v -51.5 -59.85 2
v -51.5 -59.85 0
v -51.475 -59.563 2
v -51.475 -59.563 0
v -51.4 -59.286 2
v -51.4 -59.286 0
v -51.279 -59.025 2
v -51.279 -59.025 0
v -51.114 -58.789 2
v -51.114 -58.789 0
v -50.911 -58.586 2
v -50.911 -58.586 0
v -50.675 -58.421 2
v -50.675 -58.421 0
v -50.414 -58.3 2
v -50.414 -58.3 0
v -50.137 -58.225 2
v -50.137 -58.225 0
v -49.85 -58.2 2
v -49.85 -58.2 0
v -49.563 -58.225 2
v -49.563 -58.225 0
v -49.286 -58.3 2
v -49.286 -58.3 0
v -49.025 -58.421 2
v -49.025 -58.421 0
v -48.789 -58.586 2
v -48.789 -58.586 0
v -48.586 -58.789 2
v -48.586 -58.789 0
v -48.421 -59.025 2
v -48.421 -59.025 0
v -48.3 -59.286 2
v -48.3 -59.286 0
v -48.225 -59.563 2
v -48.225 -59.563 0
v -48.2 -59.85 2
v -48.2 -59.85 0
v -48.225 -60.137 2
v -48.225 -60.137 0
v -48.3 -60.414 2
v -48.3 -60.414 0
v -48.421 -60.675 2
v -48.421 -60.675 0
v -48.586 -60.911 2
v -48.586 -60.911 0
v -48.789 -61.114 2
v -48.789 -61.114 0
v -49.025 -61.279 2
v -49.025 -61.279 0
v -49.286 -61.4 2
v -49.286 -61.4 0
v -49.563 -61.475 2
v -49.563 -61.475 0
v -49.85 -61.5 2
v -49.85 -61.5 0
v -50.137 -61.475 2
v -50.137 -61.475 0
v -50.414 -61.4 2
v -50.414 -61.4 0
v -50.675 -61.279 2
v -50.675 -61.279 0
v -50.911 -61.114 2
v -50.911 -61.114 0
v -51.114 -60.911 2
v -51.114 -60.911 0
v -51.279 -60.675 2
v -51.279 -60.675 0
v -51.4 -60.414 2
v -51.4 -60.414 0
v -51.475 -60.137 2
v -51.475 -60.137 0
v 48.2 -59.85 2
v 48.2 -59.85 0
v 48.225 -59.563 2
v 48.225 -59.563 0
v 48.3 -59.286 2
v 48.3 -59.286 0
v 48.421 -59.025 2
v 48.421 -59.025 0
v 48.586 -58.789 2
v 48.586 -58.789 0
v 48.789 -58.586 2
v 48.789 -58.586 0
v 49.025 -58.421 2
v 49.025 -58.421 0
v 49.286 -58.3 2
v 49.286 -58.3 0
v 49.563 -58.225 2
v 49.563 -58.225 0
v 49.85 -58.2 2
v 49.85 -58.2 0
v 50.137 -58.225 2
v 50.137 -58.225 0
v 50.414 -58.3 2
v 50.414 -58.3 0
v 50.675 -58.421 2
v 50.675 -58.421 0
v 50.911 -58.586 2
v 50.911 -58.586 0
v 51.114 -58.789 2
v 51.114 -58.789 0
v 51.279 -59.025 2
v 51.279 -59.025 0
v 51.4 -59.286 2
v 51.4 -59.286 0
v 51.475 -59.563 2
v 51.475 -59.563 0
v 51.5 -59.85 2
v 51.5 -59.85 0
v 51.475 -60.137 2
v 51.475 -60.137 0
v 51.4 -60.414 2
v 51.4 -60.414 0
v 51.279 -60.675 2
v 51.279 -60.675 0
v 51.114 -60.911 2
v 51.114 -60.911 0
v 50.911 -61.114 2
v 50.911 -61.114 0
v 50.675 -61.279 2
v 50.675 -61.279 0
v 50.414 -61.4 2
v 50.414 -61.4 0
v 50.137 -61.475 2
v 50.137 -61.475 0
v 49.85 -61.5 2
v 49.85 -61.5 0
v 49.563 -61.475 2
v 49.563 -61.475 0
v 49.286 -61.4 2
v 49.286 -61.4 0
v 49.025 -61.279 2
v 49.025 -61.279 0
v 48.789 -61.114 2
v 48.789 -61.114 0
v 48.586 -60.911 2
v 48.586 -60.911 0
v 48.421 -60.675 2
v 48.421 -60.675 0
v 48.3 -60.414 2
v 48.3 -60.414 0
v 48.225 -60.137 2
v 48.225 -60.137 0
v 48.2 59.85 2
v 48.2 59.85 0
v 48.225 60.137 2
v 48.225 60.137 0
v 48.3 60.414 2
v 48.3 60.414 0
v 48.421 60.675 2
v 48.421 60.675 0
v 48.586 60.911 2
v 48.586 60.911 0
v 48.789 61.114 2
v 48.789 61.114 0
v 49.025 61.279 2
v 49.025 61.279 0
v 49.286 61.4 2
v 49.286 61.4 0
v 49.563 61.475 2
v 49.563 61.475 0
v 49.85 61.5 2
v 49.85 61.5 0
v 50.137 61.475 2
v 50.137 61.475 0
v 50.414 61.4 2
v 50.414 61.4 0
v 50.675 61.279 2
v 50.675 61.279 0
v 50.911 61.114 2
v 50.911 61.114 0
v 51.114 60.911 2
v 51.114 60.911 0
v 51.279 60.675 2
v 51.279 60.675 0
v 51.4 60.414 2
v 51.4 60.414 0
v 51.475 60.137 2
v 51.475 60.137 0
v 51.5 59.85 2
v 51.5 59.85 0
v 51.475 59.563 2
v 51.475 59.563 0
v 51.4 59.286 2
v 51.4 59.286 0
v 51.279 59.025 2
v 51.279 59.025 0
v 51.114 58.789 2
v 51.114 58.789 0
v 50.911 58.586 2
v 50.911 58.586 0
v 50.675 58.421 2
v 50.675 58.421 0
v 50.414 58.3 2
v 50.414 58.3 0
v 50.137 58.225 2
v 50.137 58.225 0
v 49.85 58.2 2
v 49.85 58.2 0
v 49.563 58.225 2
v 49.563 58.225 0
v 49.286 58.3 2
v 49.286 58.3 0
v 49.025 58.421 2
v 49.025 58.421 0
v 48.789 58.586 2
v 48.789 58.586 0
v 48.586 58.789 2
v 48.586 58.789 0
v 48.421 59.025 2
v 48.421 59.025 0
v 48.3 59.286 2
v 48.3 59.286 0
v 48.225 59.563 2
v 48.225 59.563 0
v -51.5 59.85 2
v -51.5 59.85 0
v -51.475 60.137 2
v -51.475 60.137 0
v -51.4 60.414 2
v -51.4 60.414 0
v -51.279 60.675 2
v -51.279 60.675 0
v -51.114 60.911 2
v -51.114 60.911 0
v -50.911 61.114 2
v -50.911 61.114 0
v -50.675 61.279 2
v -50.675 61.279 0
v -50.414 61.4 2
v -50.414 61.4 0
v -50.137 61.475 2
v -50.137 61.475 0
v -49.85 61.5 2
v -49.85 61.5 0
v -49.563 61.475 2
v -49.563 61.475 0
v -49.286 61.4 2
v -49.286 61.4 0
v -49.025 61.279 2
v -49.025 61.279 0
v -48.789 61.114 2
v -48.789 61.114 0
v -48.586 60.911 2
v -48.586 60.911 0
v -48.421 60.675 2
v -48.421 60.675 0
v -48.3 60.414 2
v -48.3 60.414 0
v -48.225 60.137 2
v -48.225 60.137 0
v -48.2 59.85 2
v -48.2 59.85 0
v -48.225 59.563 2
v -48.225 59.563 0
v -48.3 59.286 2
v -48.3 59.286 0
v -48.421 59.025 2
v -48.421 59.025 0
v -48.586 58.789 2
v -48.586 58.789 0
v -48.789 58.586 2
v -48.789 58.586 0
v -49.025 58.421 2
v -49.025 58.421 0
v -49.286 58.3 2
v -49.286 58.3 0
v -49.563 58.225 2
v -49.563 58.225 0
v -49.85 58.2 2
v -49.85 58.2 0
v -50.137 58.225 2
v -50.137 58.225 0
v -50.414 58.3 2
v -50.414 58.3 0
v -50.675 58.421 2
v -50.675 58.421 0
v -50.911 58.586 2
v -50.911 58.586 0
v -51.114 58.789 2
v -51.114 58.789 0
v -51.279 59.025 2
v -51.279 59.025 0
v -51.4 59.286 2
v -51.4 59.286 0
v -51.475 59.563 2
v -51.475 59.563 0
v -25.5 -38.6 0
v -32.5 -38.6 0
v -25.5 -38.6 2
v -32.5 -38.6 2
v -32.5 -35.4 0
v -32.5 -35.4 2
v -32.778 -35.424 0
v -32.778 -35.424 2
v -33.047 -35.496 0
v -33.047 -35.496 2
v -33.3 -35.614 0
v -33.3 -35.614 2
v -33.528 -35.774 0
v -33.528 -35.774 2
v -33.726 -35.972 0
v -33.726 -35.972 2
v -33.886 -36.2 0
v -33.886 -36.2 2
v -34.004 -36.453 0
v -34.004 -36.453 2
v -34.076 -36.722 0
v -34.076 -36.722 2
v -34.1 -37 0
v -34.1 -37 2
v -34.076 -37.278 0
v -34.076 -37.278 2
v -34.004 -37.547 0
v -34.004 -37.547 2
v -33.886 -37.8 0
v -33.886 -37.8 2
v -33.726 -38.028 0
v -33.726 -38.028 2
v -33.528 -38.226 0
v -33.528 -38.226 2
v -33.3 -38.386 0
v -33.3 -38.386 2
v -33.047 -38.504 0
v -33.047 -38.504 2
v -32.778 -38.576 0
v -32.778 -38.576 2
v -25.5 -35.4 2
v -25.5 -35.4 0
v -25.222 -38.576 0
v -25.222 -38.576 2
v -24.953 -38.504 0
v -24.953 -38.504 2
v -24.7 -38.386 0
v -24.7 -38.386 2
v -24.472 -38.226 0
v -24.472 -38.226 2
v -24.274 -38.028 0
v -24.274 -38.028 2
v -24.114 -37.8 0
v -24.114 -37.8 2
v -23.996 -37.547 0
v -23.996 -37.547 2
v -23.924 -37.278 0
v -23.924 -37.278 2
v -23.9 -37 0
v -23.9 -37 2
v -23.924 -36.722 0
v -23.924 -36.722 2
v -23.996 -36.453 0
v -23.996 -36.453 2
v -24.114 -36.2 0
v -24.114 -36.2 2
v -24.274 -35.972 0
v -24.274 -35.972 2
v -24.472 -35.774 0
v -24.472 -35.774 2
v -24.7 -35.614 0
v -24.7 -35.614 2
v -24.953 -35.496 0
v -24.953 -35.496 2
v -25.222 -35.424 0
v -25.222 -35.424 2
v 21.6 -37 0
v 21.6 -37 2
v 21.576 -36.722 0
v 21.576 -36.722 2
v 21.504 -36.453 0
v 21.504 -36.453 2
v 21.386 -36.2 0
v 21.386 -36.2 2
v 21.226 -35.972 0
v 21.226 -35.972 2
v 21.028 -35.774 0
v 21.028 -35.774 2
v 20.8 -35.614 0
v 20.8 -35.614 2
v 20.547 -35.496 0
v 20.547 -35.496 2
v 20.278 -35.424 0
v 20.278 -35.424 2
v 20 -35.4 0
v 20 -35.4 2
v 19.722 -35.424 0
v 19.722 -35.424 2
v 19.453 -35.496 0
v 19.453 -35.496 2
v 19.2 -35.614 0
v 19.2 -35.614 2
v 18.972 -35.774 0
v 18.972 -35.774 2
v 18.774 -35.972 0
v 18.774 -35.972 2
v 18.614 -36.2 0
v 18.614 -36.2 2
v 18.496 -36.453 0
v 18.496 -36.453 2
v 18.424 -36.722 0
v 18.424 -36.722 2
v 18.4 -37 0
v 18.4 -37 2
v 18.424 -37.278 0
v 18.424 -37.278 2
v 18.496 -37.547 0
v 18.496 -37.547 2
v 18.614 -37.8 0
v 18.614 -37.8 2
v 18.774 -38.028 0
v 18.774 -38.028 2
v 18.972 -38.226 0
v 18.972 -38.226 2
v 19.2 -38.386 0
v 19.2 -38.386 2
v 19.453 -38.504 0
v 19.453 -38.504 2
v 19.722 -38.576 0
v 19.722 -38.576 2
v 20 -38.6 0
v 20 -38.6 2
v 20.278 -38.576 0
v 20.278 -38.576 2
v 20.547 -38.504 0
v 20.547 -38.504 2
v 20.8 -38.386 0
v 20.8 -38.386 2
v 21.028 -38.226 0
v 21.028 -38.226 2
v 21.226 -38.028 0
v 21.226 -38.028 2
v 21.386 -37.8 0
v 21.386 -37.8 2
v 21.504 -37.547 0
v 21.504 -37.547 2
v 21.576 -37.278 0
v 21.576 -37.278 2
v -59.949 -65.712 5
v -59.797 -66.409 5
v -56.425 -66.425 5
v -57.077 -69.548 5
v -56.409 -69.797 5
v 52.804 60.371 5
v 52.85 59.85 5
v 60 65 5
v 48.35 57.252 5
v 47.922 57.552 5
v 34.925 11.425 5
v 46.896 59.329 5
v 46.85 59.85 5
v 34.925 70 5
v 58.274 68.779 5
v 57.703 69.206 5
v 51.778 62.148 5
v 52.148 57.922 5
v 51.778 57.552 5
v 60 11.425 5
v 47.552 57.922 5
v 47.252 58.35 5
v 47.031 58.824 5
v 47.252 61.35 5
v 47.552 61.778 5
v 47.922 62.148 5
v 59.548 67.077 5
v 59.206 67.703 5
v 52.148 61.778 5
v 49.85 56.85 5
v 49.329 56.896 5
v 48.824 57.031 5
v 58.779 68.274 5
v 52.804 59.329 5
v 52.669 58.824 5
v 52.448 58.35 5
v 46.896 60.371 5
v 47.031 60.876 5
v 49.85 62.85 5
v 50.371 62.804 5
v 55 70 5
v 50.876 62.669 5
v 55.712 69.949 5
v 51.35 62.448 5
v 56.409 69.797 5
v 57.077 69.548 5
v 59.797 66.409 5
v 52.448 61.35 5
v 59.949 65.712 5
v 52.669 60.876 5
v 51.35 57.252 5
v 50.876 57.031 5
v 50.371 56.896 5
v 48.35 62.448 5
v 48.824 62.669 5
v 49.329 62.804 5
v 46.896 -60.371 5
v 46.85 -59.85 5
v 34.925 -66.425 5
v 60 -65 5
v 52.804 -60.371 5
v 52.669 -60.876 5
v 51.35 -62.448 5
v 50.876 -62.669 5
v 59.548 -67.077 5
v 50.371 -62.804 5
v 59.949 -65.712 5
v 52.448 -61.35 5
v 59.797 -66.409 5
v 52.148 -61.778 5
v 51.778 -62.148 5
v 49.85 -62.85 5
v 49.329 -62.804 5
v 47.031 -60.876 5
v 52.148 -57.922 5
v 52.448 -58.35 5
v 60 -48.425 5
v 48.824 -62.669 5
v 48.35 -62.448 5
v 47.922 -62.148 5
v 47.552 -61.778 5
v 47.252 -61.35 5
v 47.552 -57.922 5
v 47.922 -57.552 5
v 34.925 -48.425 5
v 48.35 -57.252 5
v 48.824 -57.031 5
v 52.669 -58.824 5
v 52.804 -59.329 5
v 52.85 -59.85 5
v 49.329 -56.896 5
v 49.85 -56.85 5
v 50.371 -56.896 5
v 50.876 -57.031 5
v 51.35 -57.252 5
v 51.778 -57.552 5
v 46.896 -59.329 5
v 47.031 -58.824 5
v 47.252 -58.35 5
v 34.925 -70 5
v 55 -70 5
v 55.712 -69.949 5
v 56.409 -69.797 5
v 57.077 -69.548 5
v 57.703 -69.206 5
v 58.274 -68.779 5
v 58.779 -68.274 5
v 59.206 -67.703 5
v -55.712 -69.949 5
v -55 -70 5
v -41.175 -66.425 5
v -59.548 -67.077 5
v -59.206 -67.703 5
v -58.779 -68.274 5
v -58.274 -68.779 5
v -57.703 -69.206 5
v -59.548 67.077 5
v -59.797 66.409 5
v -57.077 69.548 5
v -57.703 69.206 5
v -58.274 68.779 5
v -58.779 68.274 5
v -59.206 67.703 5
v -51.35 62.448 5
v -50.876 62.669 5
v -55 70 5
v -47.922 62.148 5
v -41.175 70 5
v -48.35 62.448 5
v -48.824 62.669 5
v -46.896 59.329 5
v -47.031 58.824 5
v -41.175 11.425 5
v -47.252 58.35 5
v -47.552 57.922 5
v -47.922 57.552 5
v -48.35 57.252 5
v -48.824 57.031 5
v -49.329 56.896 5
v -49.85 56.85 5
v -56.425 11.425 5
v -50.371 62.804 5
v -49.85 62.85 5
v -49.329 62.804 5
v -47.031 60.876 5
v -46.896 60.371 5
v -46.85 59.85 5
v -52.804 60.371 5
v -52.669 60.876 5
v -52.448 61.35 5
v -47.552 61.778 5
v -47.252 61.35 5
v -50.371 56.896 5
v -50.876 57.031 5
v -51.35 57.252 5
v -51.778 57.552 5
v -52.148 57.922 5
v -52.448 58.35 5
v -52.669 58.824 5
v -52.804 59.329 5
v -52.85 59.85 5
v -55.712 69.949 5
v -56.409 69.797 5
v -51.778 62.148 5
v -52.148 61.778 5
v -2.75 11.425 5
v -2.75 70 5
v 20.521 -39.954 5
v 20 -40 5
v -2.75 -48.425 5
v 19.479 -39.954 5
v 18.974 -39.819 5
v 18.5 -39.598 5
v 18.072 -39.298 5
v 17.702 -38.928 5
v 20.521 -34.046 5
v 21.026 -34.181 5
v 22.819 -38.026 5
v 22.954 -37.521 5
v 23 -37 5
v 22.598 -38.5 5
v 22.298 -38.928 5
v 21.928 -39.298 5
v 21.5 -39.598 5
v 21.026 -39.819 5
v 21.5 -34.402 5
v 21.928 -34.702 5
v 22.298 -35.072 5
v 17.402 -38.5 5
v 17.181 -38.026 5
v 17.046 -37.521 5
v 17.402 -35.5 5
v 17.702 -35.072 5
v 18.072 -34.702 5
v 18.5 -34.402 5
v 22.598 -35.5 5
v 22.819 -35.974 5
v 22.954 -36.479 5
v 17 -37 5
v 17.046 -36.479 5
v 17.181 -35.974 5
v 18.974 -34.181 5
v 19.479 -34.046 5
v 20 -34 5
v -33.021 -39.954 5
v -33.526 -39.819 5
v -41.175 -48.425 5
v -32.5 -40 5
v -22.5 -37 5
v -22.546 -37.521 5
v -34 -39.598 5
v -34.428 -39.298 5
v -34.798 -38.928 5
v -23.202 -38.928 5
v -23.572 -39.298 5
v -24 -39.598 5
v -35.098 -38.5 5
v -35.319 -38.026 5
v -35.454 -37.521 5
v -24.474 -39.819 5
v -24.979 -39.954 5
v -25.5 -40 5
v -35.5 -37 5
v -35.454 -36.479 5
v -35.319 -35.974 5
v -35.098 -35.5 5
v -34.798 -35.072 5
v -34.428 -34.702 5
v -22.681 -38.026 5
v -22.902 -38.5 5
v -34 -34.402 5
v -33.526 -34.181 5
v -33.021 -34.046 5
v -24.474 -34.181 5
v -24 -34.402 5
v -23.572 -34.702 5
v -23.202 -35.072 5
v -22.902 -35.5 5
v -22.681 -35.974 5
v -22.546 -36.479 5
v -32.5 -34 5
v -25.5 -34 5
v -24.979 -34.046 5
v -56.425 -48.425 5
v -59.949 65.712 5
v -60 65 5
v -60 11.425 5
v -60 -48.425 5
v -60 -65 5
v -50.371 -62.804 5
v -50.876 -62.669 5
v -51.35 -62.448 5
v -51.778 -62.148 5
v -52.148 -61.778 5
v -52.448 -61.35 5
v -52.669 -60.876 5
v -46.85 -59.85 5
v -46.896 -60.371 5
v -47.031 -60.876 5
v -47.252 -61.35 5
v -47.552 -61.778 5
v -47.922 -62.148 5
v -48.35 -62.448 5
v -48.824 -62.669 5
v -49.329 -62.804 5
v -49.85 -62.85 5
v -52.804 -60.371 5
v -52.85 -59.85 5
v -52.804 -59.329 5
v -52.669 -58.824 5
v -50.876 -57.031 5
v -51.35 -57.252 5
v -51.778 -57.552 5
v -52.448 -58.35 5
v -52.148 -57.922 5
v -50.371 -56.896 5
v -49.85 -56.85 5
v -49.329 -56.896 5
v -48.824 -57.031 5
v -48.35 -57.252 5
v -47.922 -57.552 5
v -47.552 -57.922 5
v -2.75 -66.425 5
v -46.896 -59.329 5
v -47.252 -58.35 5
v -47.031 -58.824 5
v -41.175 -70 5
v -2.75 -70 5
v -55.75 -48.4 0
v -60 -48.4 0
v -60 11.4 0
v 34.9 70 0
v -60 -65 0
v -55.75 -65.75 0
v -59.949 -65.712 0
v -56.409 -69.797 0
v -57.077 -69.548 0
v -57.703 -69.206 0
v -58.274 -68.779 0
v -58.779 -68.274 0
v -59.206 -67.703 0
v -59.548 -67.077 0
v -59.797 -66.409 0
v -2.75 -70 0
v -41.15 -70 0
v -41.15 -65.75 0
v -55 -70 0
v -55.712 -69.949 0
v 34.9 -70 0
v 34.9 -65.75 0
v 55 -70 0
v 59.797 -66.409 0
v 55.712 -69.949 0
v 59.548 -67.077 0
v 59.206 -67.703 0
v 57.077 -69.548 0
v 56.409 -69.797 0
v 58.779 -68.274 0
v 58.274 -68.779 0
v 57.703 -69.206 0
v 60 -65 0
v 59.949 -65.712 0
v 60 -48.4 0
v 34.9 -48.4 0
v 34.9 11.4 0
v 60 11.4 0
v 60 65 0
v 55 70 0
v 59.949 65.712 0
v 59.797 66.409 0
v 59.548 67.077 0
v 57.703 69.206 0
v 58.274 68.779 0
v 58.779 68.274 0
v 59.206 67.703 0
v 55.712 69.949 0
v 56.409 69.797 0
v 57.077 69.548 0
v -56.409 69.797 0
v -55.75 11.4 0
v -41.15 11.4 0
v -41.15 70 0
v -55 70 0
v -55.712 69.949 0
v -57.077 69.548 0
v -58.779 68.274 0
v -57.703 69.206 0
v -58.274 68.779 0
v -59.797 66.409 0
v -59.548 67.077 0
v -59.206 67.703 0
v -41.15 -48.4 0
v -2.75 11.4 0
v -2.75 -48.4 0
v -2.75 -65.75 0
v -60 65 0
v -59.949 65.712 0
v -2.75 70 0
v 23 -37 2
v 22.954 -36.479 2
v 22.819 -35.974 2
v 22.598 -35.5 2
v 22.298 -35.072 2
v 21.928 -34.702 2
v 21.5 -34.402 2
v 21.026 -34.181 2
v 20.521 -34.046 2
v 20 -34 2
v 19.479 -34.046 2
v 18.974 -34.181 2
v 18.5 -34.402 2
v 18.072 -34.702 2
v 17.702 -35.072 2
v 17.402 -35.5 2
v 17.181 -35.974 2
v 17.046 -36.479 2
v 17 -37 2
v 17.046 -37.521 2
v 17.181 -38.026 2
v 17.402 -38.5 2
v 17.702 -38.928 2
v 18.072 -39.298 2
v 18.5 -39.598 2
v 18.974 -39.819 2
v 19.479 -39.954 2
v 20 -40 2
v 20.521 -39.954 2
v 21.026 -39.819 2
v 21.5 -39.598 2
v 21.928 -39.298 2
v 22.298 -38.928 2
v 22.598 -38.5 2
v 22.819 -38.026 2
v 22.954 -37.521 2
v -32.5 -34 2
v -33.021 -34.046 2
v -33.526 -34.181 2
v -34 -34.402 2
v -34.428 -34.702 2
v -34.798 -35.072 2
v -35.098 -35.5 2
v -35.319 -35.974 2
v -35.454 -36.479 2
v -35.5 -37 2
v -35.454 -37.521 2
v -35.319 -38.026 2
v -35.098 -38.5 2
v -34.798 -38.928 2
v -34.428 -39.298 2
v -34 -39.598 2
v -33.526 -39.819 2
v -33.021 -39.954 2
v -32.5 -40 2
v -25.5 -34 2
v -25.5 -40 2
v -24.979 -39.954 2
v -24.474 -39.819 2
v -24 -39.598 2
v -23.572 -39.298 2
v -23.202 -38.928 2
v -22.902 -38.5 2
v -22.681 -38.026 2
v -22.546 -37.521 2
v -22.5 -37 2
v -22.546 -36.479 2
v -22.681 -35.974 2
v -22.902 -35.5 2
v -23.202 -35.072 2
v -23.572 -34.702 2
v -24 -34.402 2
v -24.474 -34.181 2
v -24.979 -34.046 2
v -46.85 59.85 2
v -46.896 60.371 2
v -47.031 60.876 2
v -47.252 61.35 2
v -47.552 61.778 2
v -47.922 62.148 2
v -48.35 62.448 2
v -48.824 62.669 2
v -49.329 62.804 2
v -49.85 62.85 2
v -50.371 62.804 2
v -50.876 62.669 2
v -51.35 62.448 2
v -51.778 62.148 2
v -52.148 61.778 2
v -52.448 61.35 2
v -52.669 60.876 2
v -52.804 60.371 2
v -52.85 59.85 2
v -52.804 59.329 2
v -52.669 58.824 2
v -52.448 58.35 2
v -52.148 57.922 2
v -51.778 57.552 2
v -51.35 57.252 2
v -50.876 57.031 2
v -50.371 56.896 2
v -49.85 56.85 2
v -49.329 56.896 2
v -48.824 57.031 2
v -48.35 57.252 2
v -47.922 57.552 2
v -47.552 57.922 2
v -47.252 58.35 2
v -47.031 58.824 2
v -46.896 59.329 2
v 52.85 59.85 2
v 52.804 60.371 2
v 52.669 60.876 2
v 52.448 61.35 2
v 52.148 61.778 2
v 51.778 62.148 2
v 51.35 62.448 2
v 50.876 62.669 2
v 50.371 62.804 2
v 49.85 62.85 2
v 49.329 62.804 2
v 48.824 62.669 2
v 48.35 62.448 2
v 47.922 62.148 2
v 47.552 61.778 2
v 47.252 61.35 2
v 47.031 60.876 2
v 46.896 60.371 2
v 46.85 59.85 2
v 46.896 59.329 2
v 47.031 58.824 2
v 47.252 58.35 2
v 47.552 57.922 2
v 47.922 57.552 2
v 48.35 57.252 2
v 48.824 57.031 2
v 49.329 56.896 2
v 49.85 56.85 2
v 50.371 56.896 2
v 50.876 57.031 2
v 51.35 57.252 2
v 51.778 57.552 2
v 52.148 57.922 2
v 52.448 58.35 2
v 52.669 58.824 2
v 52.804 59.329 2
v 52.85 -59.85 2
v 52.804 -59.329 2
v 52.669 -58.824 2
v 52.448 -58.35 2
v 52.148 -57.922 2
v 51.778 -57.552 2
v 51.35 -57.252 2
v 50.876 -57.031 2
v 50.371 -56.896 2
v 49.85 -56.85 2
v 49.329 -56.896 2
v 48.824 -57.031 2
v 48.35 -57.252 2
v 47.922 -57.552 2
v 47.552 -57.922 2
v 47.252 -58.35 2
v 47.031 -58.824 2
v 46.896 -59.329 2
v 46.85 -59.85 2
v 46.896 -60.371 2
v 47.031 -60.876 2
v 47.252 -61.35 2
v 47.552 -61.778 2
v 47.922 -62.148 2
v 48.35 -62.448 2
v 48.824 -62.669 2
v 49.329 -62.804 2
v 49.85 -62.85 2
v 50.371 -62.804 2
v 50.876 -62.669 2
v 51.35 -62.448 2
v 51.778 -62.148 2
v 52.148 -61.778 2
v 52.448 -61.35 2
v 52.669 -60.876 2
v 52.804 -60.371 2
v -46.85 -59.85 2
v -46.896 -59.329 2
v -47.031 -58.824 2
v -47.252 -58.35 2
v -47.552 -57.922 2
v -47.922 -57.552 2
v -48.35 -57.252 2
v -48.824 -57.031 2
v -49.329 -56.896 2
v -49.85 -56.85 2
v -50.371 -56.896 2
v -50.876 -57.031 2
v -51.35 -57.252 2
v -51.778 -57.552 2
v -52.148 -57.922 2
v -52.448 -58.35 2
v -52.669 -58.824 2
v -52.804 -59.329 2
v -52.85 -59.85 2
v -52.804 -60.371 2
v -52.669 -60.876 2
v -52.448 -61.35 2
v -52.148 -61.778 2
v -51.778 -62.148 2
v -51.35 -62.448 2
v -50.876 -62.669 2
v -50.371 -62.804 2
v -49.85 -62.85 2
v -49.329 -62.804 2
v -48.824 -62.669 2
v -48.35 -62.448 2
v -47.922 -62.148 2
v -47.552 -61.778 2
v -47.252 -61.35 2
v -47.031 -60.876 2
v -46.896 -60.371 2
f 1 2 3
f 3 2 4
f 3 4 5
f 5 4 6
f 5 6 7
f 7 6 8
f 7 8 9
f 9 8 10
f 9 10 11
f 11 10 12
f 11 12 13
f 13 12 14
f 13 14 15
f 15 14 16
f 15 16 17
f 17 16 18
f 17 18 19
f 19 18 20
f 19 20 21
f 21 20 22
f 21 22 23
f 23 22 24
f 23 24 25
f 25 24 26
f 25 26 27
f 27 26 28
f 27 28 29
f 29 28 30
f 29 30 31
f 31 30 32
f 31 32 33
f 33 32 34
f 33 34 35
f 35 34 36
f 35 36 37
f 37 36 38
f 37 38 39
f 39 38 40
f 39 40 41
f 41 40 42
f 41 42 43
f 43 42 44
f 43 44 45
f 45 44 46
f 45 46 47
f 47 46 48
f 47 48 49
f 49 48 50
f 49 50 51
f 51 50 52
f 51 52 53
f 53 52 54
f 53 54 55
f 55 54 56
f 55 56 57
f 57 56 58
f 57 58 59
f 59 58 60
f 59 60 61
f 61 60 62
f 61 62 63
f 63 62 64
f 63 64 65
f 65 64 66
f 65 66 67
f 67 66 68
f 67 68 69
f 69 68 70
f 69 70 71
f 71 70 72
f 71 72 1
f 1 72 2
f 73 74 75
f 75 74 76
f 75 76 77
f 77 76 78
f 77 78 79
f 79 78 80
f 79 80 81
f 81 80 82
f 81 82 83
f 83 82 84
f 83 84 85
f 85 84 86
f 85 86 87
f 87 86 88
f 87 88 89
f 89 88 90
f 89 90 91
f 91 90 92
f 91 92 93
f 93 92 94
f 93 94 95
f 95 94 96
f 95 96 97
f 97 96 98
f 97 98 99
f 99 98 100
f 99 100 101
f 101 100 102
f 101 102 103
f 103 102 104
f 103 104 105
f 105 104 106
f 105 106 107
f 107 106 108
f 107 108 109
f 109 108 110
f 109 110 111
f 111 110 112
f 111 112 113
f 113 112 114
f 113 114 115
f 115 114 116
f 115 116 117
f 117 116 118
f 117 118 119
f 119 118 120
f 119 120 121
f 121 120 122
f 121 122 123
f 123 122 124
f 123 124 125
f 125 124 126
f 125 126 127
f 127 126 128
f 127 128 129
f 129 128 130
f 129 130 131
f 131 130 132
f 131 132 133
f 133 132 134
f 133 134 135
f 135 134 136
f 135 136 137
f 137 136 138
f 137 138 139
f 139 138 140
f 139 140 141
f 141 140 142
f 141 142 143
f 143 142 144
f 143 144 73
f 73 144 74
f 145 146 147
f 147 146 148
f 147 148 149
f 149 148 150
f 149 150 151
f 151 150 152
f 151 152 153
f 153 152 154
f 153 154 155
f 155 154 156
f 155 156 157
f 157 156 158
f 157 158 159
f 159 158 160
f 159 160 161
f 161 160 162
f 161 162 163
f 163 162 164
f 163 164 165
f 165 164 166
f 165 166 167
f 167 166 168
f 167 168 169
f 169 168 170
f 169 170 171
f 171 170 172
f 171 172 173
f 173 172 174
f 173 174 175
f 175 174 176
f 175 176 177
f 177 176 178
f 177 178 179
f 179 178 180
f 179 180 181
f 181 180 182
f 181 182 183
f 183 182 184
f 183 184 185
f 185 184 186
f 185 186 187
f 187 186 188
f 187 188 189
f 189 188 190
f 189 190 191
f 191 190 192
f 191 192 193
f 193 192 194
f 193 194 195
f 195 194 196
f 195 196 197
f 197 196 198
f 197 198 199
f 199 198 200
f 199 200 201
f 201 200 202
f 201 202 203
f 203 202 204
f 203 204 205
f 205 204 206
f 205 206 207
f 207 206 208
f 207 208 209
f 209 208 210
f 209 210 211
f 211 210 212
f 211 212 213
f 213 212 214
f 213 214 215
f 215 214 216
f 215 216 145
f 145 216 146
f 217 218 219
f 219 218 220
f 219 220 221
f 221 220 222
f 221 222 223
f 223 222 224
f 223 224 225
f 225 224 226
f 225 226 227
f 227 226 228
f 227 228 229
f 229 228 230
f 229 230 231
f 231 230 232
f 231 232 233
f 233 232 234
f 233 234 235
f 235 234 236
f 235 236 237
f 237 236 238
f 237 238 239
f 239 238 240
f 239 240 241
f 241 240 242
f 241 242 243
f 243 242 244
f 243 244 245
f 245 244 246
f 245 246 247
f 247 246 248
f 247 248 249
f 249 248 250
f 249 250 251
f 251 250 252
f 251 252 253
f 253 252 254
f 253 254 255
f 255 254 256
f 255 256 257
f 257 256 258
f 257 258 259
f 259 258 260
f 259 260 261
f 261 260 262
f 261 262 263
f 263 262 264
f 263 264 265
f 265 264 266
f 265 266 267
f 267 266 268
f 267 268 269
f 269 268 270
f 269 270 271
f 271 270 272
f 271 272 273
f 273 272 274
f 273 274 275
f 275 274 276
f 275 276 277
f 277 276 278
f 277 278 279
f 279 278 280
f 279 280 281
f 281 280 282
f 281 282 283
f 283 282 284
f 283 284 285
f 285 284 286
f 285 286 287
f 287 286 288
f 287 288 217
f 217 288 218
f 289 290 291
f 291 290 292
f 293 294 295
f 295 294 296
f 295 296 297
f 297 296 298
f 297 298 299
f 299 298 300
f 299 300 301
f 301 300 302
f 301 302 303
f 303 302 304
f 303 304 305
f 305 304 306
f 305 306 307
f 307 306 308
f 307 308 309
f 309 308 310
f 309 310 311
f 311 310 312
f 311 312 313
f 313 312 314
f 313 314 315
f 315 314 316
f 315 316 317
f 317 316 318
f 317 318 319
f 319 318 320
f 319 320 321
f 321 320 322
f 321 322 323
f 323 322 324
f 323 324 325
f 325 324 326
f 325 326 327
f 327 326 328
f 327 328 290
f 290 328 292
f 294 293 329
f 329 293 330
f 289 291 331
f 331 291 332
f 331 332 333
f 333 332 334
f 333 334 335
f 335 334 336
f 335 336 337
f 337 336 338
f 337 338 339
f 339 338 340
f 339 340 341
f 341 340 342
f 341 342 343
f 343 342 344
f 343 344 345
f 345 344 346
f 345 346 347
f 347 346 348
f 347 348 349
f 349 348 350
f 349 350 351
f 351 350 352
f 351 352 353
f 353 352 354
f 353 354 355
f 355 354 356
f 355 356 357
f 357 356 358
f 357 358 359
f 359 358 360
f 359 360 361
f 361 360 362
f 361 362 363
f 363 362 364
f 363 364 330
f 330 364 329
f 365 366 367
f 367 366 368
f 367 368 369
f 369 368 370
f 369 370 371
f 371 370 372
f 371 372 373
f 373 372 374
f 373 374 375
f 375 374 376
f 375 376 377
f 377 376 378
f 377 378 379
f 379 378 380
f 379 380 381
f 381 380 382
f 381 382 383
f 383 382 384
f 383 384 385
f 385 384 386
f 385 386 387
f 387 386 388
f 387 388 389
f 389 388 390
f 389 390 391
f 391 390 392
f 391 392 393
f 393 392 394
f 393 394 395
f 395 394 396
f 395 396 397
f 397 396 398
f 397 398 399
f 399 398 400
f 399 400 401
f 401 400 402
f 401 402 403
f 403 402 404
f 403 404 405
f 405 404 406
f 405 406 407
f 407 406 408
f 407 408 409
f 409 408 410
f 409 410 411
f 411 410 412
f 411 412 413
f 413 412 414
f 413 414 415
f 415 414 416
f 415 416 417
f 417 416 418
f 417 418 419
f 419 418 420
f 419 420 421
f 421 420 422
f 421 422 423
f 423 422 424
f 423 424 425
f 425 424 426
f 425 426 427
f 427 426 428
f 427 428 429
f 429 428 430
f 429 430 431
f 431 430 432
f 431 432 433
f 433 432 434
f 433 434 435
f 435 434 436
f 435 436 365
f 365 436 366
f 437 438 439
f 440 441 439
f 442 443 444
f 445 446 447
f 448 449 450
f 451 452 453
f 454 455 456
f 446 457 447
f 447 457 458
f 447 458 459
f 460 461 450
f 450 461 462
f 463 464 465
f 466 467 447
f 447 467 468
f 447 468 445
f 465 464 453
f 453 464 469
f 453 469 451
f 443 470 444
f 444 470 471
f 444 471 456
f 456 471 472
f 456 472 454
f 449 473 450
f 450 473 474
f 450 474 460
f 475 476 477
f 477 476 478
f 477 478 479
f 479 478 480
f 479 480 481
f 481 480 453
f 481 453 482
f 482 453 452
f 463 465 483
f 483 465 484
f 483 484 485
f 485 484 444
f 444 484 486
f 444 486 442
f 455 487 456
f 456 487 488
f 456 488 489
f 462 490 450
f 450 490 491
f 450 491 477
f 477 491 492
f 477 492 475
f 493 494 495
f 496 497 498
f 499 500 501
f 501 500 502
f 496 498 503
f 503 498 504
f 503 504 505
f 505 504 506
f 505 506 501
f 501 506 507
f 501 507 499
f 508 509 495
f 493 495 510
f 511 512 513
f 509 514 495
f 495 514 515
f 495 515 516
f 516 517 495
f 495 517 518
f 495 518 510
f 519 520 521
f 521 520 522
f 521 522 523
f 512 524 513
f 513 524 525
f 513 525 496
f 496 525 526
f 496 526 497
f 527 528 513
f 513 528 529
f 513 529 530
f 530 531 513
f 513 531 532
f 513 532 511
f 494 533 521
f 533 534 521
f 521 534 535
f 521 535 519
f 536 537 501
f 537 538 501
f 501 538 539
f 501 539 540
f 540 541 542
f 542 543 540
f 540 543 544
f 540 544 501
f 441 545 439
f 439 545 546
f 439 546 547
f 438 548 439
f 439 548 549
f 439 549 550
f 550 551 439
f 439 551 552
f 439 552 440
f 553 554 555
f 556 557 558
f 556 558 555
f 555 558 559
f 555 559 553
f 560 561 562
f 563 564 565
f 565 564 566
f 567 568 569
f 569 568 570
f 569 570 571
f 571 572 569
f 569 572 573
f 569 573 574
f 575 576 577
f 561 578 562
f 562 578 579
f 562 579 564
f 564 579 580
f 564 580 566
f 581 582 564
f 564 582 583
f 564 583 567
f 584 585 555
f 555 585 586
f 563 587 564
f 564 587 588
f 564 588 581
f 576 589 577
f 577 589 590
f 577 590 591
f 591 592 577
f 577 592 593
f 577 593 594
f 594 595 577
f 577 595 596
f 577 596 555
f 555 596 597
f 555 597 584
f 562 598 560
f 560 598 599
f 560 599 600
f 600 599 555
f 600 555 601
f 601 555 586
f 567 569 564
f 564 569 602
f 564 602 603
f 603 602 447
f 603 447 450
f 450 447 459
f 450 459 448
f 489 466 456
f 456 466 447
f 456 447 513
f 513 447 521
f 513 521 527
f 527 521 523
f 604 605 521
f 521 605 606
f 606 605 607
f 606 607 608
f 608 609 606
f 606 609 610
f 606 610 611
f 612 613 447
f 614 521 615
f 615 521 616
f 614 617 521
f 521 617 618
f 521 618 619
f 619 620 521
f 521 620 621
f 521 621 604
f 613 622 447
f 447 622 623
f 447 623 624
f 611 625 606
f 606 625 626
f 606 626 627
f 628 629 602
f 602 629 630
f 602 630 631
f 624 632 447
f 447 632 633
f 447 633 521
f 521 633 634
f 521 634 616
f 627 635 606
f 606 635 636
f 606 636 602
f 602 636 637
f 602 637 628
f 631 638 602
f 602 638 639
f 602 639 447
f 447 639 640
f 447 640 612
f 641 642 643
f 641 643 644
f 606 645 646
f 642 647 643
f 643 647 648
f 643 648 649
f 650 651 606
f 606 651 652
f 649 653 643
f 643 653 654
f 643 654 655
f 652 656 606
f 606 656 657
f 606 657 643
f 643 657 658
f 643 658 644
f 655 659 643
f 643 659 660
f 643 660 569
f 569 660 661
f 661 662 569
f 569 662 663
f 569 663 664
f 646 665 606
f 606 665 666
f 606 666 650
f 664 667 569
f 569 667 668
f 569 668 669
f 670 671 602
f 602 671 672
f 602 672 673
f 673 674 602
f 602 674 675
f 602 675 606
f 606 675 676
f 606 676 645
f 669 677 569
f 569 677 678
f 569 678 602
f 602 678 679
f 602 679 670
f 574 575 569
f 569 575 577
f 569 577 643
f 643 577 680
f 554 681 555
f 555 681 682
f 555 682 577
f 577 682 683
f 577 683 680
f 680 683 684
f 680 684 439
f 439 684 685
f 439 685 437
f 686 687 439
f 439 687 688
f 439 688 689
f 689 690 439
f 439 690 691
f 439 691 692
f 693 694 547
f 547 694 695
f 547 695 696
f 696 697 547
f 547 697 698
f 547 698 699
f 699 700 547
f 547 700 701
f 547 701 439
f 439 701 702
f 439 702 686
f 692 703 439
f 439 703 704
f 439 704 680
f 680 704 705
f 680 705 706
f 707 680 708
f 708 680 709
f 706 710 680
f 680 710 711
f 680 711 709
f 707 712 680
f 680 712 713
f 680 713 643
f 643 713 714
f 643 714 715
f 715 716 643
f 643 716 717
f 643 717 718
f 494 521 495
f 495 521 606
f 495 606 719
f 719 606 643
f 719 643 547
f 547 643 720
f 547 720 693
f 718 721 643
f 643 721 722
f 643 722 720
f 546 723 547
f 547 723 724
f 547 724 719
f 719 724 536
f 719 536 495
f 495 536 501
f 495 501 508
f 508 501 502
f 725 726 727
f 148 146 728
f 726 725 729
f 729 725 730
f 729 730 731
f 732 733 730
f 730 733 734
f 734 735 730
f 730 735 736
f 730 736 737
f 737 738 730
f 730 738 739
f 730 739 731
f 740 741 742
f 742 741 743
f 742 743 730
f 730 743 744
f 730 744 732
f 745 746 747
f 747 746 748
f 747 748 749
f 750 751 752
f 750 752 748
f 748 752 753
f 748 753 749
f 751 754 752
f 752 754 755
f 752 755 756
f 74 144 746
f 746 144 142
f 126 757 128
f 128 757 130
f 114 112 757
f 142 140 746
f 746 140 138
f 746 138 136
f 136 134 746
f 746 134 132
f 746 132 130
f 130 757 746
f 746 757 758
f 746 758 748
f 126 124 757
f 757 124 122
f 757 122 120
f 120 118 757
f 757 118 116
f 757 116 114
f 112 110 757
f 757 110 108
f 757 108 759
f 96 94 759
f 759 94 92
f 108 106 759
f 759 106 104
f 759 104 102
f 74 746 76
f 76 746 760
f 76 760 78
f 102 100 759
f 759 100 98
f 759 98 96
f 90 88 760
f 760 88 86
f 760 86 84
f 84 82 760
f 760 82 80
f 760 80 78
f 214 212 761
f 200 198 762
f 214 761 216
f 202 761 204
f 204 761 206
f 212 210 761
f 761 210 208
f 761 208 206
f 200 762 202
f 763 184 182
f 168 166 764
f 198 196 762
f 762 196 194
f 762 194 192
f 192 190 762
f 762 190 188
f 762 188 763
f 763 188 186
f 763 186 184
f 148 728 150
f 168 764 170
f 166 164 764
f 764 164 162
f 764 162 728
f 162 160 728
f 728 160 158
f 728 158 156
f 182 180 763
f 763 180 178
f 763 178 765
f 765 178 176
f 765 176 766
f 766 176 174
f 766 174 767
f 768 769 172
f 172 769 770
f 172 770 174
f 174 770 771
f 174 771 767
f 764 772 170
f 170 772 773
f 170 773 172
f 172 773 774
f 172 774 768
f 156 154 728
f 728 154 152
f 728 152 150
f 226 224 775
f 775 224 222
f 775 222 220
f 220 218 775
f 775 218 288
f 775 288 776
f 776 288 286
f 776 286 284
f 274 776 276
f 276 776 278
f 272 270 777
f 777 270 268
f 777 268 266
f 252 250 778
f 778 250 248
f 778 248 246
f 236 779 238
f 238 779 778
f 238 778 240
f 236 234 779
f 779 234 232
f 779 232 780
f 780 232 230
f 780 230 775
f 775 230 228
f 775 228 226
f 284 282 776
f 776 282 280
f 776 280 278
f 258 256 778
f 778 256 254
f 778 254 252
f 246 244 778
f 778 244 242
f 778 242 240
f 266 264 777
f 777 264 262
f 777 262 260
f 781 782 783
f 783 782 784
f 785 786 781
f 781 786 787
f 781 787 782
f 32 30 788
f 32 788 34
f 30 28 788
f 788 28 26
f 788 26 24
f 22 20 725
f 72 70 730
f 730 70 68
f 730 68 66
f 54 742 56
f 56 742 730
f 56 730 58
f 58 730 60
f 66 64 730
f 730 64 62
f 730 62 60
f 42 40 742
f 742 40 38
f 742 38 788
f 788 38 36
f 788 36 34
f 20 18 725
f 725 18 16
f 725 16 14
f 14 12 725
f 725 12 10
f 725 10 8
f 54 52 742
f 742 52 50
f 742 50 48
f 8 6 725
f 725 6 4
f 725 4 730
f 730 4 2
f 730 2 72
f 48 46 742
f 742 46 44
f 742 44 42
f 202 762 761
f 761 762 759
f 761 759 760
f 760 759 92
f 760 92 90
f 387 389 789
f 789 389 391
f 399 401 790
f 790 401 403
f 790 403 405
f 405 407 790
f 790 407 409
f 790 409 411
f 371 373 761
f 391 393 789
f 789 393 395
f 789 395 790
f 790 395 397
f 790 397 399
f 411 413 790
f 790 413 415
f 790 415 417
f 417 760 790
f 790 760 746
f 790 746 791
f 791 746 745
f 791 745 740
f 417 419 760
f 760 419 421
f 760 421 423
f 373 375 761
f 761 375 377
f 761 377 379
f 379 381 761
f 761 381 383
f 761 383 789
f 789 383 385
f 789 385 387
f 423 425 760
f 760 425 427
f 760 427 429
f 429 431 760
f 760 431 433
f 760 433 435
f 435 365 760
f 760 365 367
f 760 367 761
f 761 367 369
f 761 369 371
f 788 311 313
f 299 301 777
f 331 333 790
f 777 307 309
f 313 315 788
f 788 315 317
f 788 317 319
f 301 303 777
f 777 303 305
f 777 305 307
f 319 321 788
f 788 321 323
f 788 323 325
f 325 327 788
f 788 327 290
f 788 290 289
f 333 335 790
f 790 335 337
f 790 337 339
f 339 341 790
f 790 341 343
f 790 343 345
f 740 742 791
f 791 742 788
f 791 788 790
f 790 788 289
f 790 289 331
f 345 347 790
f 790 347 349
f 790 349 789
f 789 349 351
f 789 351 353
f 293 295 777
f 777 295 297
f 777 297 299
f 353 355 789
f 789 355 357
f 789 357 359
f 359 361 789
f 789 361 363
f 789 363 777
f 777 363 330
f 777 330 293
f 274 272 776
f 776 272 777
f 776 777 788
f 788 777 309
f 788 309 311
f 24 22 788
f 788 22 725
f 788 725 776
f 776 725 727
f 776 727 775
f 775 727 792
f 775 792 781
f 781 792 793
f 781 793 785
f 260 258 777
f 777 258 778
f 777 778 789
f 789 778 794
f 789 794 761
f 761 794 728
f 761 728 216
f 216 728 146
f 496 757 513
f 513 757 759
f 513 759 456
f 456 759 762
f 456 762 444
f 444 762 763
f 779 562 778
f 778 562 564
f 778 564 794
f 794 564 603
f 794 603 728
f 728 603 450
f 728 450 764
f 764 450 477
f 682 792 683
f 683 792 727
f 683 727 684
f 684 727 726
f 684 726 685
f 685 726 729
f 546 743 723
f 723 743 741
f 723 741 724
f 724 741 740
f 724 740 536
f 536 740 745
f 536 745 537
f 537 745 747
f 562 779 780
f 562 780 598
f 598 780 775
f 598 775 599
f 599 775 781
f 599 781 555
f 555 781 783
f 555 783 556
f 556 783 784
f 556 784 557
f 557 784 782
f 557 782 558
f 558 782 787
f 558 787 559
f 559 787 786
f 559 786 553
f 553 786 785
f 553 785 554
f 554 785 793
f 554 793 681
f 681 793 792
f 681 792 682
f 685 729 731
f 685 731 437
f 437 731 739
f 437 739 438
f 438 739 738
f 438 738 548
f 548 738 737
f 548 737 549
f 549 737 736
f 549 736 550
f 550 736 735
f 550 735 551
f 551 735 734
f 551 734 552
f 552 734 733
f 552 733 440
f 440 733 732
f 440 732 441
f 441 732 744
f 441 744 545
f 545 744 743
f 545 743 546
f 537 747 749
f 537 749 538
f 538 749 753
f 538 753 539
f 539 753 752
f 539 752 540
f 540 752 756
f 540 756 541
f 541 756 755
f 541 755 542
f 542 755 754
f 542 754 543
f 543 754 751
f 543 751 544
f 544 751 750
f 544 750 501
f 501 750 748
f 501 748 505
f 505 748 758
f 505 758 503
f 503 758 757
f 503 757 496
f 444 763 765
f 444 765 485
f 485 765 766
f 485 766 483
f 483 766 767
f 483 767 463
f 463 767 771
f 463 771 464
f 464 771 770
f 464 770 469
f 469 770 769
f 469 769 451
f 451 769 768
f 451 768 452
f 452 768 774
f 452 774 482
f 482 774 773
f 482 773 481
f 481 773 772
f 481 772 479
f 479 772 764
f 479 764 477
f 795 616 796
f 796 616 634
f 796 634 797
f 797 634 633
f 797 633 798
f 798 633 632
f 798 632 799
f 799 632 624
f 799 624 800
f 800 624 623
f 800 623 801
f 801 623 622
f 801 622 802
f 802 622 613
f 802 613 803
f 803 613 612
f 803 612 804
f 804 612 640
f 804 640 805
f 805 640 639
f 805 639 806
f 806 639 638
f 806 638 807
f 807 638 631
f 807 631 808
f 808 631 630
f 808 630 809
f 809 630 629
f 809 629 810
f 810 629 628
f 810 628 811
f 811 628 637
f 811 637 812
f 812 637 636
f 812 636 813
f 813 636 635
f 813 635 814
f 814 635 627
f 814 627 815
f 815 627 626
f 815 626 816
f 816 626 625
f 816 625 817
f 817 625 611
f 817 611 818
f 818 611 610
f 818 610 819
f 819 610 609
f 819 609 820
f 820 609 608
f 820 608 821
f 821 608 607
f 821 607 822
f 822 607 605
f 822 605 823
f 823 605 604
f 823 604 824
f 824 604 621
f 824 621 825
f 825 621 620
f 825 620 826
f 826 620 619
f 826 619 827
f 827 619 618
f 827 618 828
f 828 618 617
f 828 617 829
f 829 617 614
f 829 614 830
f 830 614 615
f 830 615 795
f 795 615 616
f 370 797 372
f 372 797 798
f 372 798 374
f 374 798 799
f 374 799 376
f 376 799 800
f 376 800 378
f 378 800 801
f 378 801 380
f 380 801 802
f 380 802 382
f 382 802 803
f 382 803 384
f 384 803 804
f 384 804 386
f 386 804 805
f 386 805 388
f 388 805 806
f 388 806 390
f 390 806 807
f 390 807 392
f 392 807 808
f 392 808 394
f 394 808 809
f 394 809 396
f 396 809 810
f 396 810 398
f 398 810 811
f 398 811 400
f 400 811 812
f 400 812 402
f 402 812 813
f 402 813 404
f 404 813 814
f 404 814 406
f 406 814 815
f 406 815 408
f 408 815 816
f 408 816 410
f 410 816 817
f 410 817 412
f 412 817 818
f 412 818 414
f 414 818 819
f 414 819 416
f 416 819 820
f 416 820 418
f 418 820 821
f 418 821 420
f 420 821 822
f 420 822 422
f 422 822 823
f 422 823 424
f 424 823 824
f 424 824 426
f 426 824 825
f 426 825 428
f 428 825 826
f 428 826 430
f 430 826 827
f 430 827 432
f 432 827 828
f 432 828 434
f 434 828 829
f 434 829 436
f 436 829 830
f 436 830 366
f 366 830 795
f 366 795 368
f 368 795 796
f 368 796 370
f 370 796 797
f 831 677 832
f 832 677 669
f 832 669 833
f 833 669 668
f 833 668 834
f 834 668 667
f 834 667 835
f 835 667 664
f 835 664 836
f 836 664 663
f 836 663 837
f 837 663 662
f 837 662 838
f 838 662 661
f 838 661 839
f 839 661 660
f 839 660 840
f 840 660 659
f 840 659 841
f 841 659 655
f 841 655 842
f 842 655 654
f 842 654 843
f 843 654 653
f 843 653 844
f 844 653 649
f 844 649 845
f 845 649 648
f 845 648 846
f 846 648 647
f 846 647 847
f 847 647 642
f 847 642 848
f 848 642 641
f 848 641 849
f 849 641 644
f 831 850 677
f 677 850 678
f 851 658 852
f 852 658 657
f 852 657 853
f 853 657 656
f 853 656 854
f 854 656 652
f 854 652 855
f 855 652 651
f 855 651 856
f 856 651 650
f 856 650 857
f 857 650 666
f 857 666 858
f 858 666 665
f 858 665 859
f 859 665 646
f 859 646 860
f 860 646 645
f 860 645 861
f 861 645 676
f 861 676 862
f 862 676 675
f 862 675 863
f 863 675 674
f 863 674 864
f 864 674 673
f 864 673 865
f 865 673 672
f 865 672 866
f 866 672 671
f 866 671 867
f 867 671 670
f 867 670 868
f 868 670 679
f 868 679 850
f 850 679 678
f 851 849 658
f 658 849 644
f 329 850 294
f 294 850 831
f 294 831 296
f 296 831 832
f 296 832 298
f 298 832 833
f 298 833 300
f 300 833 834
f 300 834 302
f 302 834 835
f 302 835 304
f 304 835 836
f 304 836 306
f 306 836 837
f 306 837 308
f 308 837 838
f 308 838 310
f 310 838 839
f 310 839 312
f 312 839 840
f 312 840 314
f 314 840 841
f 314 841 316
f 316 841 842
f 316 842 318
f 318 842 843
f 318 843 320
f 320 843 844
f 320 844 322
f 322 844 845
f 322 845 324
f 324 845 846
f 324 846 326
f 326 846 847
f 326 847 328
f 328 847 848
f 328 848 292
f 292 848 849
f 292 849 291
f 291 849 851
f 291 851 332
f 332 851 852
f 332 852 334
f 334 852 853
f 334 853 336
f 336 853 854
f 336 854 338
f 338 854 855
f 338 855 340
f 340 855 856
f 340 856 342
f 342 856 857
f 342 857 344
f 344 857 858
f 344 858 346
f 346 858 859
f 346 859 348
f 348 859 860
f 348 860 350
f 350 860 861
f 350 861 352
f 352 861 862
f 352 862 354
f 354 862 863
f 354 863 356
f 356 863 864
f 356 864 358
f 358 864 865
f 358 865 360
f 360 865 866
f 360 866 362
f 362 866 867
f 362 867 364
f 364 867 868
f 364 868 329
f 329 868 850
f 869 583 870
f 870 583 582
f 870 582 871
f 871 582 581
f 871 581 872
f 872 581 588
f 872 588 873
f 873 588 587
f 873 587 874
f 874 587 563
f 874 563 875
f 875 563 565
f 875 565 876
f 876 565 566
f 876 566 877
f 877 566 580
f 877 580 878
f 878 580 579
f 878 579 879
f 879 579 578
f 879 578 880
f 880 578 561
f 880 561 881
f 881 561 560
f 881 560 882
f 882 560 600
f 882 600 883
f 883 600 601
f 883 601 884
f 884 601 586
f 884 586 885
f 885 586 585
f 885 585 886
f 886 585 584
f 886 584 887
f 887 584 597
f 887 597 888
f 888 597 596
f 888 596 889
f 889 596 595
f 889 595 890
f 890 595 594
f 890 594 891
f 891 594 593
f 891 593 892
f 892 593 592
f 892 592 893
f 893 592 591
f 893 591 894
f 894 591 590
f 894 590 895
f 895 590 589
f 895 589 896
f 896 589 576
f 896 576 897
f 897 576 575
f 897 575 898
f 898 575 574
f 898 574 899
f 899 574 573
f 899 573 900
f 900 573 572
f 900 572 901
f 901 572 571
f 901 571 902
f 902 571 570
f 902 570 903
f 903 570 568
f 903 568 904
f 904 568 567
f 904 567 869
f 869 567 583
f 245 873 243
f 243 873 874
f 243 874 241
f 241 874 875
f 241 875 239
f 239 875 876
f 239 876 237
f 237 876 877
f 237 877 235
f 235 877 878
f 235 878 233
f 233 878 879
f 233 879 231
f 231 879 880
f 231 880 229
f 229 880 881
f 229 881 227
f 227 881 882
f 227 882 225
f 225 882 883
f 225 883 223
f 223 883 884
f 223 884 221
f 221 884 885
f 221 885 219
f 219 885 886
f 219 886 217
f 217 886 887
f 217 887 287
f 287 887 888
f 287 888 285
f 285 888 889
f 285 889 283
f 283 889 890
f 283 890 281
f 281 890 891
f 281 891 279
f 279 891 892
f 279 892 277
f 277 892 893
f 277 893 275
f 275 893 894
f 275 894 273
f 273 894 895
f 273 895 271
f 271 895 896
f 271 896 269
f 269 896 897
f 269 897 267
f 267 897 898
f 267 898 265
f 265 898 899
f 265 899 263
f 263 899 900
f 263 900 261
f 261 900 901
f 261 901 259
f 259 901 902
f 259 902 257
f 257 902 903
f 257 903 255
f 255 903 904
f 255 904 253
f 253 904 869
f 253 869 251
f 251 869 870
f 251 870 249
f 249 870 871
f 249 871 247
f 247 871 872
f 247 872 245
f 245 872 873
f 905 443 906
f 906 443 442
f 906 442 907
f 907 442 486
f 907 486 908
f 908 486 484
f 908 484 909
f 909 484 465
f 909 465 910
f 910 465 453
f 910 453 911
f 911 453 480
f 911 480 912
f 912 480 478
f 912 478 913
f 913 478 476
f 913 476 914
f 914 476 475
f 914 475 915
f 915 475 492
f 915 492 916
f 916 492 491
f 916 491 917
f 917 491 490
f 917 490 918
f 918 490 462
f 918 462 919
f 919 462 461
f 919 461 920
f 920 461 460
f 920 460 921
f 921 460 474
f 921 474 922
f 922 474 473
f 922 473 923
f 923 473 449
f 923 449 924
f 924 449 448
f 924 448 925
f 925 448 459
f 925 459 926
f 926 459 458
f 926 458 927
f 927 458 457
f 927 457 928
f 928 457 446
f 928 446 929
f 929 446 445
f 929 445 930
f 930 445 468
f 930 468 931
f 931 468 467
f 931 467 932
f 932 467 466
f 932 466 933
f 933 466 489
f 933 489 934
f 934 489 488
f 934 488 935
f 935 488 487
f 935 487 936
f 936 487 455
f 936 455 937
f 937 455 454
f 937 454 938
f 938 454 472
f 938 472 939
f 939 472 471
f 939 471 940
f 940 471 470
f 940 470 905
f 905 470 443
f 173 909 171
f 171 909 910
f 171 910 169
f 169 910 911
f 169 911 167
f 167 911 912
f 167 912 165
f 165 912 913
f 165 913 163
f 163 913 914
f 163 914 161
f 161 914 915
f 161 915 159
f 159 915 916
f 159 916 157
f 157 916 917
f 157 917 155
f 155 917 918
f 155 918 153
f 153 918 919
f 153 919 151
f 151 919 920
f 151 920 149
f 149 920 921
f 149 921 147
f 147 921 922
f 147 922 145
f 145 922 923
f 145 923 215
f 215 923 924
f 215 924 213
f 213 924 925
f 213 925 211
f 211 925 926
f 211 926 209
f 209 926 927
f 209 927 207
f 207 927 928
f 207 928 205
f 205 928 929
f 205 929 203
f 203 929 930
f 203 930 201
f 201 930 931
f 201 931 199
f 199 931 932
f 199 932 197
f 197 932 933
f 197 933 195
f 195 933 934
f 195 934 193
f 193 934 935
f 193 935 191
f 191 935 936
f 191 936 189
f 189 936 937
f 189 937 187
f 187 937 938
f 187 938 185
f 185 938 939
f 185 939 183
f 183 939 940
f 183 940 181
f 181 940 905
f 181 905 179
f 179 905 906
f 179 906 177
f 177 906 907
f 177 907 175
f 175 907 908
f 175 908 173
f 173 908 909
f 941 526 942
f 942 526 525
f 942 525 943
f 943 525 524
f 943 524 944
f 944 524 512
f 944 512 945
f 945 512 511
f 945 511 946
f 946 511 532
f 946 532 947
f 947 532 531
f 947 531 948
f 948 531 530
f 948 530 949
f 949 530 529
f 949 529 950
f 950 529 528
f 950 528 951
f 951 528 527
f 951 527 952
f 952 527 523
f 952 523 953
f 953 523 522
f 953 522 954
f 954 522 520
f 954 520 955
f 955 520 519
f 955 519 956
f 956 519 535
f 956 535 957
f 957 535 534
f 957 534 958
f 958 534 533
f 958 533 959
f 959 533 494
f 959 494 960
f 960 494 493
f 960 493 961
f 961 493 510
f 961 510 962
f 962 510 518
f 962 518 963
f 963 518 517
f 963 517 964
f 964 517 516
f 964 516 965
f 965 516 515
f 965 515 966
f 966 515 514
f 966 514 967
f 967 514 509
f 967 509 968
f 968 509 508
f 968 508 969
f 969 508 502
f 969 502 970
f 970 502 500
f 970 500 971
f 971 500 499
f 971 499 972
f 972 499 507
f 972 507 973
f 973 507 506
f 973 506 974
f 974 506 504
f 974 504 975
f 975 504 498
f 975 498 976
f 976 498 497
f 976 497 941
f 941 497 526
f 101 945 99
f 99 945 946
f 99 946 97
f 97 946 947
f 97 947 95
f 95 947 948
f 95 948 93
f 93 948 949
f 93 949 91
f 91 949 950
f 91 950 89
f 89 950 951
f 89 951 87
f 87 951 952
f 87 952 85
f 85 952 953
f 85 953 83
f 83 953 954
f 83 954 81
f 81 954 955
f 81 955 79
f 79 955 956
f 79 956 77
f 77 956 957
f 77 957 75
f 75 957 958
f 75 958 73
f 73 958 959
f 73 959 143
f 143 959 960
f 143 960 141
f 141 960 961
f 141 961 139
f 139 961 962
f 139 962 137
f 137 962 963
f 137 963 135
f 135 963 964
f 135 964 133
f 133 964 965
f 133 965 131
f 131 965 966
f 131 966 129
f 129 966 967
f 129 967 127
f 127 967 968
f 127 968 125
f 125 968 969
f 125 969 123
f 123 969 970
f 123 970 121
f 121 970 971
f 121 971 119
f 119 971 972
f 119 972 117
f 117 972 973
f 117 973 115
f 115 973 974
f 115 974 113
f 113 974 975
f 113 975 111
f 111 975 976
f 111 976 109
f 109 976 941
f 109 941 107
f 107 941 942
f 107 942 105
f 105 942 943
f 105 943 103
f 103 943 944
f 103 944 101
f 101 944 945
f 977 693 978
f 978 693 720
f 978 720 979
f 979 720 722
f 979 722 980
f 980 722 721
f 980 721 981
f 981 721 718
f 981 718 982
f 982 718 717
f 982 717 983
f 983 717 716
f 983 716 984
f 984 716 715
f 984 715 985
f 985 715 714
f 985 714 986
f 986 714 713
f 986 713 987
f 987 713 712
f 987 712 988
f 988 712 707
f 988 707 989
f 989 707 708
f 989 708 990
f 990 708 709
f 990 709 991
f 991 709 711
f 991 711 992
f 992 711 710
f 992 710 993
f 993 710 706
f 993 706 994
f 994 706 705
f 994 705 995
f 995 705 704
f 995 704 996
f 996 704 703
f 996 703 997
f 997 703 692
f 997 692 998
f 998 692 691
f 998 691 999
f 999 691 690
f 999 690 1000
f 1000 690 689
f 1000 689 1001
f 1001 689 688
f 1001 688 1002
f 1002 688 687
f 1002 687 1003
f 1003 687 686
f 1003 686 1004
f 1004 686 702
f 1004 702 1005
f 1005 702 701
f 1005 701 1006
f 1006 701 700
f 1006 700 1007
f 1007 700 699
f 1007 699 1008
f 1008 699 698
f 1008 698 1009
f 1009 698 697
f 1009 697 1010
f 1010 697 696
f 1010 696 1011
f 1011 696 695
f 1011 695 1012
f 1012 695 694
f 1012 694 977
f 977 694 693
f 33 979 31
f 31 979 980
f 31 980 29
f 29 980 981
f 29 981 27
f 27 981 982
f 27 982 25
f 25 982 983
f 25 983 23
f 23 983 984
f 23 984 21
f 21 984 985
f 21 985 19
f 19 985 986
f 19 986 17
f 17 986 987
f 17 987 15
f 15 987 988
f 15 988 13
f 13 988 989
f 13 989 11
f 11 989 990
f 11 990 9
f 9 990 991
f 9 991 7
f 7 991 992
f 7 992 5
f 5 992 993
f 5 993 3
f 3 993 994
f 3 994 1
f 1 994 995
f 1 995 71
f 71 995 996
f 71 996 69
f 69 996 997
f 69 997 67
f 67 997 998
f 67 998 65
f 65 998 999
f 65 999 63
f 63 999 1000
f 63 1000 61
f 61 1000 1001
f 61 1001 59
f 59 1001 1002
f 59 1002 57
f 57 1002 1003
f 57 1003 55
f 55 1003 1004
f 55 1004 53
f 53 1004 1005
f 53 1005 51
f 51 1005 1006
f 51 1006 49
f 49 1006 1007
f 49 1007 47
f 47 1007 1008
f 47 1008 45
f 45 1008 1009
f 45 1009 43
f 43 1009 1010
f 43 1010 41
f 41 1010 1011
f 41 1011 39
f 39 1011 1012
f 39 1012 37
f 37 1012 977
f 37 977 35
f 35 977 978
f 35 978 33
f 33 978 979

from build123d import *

# Parameters (mm, degrees)
SKETCH1_W           = 120
SKETCH1_H           = 140
SKETCH1_R           = 1.65
BOSS_EXTRUDE1_DEPTH = 5
FILLET3_R           = 5
SKETCH3_R           = 1.6
CUT_EXTRUDE3_DEPTH  = 5
SKETCH2_R           = 3
SKETCH2_R_2         = 1.6
CUT_EXTRUDE1_DEPTH  = 3


with BuildPart() as part:
    # Sketch1 → Boss-Extrude1 (new body)
    with BuildSketch(Plane.XY):
        Rectangle(SKETCH1_W, SKETCH1_H)
        with Locations((-49.85, -59.85)):
            Circle(SKETCH1_R, mode=Mode.SUBTRACT)
        with Locations((49.85, -59.85)):
            Circle(SKETCH1_R, mode=Mode.SUBTRACT)
        with Locations((49.85, 59.85)):
            Circle(SKETCH1_R, mode=Mode.SUBTRACT)
        with Locations((-49.85, 59.85)):
            Circle(SKETCH1_R, mode=Mode.SUBTRACT)
    extrude(amount=BOSS_EXTRUDE1_DEPTH)

    # Fillet3
    fillet3_edges = [part.edges().sort_by_distance(p)[0] for p in [
        (60, -70, 2.5),
        (-60, -70, 2.5),
        (-60, 70, 2.5),
        (60, 70, 2.5),
    ]]
    fillet(fillet3_edges, radius=FILLET3_R)

    # Sketch3 → Cut-Extrude3 (cut)
    with BuildSketch(Plane.XY.offset(5)):
        with Locations((20, -37)):
            Circle(SKETCH3_R)
        with BuildLine():
            Line((-32.5, -35.4), (-25.5, -35.4))
            ThreePointArc((-25.5, -35.4), (-23.9, -37), (-25.5, -38.6))
            Line((-25.5, -38.6), (-32.5, -38.6))
            ThreePointArc((-32.5, -38.6), (-34.1, -37), (-32.5, -35.4))
        make_face()
    extrude(amount=-CUT_EXTRUDE3_DEPTH, mode=Mode.SUBTRACT)

    # Sketch2 → Cut-Extrude1 (cut)
    # profile 1 of 6: a face of its own
    with BuildSketch(Plane.XY.offset(5)):
        with Locations((-49.85, 59.85)):
            Circle(SKETCH2_R)
    # profile 2 of 6: a face of its own
    with BuildSketch(Plane.XY.offset(5)):
        with Locations((49.85, 59.85)):
            Circle(SKETCH2_R)
    # profile 3 of 6: a face of its own
    with BuildSketch(Plane.XY.offset(5)):
        with Locations((49.85, -59.85)):
            Circle(SKETCH2_R)
    # profile 4 of 6: a face of its own
    with BuildSketch(Plane.XY.offset(5)):
        with Locations((-49.85, -59.85)):
            Circle(SKETCH2_R)
    # profile 5 of 6: a face of its own
    with BuildSketch(Plane.XY.offset(5)):
        with Locations((20, -37)):
            Circle(SKETCH2_R)
        with Locations((20, -37)):
            Circle(SKETCH2_R_2, mode=Mode.SUBTRACT)
    # profile 6 of 6: a face of its own
    with BuildSketch(Plane.XY.offset(5)):
        with BuildLine():
            Line((-32.5, -34), (-25.5, -34))
            ThreePointArc((-25.5, -34), (-22.5, -37), (-25.5, -40))
            Line((-25.5, -40), (-32.5, -40))
            ThreePointArc((-32.5, -40), (-35.5, -37), (-32.5, -34))
        make_face()
        with BuildLine():
            Line((-32.5, -35.4), (-25.5, -35.4))
            ThreePointArc((-25.5, -35.4), (-23.9, -37), (-25.5, -38.6))
            Line((-25.5, -38.6), (-32.5, -38.6))
            ThreePointArc((-32.5, -38.6), (-34.1, -37), (-32.5, -35.4))
        make_face(mode=Mode.SUBTRACT)
    extrude(amount=-CUT_EXTRUDE1_DEPTH, mode=Mode.SUBTRACT)


solid = part.part
